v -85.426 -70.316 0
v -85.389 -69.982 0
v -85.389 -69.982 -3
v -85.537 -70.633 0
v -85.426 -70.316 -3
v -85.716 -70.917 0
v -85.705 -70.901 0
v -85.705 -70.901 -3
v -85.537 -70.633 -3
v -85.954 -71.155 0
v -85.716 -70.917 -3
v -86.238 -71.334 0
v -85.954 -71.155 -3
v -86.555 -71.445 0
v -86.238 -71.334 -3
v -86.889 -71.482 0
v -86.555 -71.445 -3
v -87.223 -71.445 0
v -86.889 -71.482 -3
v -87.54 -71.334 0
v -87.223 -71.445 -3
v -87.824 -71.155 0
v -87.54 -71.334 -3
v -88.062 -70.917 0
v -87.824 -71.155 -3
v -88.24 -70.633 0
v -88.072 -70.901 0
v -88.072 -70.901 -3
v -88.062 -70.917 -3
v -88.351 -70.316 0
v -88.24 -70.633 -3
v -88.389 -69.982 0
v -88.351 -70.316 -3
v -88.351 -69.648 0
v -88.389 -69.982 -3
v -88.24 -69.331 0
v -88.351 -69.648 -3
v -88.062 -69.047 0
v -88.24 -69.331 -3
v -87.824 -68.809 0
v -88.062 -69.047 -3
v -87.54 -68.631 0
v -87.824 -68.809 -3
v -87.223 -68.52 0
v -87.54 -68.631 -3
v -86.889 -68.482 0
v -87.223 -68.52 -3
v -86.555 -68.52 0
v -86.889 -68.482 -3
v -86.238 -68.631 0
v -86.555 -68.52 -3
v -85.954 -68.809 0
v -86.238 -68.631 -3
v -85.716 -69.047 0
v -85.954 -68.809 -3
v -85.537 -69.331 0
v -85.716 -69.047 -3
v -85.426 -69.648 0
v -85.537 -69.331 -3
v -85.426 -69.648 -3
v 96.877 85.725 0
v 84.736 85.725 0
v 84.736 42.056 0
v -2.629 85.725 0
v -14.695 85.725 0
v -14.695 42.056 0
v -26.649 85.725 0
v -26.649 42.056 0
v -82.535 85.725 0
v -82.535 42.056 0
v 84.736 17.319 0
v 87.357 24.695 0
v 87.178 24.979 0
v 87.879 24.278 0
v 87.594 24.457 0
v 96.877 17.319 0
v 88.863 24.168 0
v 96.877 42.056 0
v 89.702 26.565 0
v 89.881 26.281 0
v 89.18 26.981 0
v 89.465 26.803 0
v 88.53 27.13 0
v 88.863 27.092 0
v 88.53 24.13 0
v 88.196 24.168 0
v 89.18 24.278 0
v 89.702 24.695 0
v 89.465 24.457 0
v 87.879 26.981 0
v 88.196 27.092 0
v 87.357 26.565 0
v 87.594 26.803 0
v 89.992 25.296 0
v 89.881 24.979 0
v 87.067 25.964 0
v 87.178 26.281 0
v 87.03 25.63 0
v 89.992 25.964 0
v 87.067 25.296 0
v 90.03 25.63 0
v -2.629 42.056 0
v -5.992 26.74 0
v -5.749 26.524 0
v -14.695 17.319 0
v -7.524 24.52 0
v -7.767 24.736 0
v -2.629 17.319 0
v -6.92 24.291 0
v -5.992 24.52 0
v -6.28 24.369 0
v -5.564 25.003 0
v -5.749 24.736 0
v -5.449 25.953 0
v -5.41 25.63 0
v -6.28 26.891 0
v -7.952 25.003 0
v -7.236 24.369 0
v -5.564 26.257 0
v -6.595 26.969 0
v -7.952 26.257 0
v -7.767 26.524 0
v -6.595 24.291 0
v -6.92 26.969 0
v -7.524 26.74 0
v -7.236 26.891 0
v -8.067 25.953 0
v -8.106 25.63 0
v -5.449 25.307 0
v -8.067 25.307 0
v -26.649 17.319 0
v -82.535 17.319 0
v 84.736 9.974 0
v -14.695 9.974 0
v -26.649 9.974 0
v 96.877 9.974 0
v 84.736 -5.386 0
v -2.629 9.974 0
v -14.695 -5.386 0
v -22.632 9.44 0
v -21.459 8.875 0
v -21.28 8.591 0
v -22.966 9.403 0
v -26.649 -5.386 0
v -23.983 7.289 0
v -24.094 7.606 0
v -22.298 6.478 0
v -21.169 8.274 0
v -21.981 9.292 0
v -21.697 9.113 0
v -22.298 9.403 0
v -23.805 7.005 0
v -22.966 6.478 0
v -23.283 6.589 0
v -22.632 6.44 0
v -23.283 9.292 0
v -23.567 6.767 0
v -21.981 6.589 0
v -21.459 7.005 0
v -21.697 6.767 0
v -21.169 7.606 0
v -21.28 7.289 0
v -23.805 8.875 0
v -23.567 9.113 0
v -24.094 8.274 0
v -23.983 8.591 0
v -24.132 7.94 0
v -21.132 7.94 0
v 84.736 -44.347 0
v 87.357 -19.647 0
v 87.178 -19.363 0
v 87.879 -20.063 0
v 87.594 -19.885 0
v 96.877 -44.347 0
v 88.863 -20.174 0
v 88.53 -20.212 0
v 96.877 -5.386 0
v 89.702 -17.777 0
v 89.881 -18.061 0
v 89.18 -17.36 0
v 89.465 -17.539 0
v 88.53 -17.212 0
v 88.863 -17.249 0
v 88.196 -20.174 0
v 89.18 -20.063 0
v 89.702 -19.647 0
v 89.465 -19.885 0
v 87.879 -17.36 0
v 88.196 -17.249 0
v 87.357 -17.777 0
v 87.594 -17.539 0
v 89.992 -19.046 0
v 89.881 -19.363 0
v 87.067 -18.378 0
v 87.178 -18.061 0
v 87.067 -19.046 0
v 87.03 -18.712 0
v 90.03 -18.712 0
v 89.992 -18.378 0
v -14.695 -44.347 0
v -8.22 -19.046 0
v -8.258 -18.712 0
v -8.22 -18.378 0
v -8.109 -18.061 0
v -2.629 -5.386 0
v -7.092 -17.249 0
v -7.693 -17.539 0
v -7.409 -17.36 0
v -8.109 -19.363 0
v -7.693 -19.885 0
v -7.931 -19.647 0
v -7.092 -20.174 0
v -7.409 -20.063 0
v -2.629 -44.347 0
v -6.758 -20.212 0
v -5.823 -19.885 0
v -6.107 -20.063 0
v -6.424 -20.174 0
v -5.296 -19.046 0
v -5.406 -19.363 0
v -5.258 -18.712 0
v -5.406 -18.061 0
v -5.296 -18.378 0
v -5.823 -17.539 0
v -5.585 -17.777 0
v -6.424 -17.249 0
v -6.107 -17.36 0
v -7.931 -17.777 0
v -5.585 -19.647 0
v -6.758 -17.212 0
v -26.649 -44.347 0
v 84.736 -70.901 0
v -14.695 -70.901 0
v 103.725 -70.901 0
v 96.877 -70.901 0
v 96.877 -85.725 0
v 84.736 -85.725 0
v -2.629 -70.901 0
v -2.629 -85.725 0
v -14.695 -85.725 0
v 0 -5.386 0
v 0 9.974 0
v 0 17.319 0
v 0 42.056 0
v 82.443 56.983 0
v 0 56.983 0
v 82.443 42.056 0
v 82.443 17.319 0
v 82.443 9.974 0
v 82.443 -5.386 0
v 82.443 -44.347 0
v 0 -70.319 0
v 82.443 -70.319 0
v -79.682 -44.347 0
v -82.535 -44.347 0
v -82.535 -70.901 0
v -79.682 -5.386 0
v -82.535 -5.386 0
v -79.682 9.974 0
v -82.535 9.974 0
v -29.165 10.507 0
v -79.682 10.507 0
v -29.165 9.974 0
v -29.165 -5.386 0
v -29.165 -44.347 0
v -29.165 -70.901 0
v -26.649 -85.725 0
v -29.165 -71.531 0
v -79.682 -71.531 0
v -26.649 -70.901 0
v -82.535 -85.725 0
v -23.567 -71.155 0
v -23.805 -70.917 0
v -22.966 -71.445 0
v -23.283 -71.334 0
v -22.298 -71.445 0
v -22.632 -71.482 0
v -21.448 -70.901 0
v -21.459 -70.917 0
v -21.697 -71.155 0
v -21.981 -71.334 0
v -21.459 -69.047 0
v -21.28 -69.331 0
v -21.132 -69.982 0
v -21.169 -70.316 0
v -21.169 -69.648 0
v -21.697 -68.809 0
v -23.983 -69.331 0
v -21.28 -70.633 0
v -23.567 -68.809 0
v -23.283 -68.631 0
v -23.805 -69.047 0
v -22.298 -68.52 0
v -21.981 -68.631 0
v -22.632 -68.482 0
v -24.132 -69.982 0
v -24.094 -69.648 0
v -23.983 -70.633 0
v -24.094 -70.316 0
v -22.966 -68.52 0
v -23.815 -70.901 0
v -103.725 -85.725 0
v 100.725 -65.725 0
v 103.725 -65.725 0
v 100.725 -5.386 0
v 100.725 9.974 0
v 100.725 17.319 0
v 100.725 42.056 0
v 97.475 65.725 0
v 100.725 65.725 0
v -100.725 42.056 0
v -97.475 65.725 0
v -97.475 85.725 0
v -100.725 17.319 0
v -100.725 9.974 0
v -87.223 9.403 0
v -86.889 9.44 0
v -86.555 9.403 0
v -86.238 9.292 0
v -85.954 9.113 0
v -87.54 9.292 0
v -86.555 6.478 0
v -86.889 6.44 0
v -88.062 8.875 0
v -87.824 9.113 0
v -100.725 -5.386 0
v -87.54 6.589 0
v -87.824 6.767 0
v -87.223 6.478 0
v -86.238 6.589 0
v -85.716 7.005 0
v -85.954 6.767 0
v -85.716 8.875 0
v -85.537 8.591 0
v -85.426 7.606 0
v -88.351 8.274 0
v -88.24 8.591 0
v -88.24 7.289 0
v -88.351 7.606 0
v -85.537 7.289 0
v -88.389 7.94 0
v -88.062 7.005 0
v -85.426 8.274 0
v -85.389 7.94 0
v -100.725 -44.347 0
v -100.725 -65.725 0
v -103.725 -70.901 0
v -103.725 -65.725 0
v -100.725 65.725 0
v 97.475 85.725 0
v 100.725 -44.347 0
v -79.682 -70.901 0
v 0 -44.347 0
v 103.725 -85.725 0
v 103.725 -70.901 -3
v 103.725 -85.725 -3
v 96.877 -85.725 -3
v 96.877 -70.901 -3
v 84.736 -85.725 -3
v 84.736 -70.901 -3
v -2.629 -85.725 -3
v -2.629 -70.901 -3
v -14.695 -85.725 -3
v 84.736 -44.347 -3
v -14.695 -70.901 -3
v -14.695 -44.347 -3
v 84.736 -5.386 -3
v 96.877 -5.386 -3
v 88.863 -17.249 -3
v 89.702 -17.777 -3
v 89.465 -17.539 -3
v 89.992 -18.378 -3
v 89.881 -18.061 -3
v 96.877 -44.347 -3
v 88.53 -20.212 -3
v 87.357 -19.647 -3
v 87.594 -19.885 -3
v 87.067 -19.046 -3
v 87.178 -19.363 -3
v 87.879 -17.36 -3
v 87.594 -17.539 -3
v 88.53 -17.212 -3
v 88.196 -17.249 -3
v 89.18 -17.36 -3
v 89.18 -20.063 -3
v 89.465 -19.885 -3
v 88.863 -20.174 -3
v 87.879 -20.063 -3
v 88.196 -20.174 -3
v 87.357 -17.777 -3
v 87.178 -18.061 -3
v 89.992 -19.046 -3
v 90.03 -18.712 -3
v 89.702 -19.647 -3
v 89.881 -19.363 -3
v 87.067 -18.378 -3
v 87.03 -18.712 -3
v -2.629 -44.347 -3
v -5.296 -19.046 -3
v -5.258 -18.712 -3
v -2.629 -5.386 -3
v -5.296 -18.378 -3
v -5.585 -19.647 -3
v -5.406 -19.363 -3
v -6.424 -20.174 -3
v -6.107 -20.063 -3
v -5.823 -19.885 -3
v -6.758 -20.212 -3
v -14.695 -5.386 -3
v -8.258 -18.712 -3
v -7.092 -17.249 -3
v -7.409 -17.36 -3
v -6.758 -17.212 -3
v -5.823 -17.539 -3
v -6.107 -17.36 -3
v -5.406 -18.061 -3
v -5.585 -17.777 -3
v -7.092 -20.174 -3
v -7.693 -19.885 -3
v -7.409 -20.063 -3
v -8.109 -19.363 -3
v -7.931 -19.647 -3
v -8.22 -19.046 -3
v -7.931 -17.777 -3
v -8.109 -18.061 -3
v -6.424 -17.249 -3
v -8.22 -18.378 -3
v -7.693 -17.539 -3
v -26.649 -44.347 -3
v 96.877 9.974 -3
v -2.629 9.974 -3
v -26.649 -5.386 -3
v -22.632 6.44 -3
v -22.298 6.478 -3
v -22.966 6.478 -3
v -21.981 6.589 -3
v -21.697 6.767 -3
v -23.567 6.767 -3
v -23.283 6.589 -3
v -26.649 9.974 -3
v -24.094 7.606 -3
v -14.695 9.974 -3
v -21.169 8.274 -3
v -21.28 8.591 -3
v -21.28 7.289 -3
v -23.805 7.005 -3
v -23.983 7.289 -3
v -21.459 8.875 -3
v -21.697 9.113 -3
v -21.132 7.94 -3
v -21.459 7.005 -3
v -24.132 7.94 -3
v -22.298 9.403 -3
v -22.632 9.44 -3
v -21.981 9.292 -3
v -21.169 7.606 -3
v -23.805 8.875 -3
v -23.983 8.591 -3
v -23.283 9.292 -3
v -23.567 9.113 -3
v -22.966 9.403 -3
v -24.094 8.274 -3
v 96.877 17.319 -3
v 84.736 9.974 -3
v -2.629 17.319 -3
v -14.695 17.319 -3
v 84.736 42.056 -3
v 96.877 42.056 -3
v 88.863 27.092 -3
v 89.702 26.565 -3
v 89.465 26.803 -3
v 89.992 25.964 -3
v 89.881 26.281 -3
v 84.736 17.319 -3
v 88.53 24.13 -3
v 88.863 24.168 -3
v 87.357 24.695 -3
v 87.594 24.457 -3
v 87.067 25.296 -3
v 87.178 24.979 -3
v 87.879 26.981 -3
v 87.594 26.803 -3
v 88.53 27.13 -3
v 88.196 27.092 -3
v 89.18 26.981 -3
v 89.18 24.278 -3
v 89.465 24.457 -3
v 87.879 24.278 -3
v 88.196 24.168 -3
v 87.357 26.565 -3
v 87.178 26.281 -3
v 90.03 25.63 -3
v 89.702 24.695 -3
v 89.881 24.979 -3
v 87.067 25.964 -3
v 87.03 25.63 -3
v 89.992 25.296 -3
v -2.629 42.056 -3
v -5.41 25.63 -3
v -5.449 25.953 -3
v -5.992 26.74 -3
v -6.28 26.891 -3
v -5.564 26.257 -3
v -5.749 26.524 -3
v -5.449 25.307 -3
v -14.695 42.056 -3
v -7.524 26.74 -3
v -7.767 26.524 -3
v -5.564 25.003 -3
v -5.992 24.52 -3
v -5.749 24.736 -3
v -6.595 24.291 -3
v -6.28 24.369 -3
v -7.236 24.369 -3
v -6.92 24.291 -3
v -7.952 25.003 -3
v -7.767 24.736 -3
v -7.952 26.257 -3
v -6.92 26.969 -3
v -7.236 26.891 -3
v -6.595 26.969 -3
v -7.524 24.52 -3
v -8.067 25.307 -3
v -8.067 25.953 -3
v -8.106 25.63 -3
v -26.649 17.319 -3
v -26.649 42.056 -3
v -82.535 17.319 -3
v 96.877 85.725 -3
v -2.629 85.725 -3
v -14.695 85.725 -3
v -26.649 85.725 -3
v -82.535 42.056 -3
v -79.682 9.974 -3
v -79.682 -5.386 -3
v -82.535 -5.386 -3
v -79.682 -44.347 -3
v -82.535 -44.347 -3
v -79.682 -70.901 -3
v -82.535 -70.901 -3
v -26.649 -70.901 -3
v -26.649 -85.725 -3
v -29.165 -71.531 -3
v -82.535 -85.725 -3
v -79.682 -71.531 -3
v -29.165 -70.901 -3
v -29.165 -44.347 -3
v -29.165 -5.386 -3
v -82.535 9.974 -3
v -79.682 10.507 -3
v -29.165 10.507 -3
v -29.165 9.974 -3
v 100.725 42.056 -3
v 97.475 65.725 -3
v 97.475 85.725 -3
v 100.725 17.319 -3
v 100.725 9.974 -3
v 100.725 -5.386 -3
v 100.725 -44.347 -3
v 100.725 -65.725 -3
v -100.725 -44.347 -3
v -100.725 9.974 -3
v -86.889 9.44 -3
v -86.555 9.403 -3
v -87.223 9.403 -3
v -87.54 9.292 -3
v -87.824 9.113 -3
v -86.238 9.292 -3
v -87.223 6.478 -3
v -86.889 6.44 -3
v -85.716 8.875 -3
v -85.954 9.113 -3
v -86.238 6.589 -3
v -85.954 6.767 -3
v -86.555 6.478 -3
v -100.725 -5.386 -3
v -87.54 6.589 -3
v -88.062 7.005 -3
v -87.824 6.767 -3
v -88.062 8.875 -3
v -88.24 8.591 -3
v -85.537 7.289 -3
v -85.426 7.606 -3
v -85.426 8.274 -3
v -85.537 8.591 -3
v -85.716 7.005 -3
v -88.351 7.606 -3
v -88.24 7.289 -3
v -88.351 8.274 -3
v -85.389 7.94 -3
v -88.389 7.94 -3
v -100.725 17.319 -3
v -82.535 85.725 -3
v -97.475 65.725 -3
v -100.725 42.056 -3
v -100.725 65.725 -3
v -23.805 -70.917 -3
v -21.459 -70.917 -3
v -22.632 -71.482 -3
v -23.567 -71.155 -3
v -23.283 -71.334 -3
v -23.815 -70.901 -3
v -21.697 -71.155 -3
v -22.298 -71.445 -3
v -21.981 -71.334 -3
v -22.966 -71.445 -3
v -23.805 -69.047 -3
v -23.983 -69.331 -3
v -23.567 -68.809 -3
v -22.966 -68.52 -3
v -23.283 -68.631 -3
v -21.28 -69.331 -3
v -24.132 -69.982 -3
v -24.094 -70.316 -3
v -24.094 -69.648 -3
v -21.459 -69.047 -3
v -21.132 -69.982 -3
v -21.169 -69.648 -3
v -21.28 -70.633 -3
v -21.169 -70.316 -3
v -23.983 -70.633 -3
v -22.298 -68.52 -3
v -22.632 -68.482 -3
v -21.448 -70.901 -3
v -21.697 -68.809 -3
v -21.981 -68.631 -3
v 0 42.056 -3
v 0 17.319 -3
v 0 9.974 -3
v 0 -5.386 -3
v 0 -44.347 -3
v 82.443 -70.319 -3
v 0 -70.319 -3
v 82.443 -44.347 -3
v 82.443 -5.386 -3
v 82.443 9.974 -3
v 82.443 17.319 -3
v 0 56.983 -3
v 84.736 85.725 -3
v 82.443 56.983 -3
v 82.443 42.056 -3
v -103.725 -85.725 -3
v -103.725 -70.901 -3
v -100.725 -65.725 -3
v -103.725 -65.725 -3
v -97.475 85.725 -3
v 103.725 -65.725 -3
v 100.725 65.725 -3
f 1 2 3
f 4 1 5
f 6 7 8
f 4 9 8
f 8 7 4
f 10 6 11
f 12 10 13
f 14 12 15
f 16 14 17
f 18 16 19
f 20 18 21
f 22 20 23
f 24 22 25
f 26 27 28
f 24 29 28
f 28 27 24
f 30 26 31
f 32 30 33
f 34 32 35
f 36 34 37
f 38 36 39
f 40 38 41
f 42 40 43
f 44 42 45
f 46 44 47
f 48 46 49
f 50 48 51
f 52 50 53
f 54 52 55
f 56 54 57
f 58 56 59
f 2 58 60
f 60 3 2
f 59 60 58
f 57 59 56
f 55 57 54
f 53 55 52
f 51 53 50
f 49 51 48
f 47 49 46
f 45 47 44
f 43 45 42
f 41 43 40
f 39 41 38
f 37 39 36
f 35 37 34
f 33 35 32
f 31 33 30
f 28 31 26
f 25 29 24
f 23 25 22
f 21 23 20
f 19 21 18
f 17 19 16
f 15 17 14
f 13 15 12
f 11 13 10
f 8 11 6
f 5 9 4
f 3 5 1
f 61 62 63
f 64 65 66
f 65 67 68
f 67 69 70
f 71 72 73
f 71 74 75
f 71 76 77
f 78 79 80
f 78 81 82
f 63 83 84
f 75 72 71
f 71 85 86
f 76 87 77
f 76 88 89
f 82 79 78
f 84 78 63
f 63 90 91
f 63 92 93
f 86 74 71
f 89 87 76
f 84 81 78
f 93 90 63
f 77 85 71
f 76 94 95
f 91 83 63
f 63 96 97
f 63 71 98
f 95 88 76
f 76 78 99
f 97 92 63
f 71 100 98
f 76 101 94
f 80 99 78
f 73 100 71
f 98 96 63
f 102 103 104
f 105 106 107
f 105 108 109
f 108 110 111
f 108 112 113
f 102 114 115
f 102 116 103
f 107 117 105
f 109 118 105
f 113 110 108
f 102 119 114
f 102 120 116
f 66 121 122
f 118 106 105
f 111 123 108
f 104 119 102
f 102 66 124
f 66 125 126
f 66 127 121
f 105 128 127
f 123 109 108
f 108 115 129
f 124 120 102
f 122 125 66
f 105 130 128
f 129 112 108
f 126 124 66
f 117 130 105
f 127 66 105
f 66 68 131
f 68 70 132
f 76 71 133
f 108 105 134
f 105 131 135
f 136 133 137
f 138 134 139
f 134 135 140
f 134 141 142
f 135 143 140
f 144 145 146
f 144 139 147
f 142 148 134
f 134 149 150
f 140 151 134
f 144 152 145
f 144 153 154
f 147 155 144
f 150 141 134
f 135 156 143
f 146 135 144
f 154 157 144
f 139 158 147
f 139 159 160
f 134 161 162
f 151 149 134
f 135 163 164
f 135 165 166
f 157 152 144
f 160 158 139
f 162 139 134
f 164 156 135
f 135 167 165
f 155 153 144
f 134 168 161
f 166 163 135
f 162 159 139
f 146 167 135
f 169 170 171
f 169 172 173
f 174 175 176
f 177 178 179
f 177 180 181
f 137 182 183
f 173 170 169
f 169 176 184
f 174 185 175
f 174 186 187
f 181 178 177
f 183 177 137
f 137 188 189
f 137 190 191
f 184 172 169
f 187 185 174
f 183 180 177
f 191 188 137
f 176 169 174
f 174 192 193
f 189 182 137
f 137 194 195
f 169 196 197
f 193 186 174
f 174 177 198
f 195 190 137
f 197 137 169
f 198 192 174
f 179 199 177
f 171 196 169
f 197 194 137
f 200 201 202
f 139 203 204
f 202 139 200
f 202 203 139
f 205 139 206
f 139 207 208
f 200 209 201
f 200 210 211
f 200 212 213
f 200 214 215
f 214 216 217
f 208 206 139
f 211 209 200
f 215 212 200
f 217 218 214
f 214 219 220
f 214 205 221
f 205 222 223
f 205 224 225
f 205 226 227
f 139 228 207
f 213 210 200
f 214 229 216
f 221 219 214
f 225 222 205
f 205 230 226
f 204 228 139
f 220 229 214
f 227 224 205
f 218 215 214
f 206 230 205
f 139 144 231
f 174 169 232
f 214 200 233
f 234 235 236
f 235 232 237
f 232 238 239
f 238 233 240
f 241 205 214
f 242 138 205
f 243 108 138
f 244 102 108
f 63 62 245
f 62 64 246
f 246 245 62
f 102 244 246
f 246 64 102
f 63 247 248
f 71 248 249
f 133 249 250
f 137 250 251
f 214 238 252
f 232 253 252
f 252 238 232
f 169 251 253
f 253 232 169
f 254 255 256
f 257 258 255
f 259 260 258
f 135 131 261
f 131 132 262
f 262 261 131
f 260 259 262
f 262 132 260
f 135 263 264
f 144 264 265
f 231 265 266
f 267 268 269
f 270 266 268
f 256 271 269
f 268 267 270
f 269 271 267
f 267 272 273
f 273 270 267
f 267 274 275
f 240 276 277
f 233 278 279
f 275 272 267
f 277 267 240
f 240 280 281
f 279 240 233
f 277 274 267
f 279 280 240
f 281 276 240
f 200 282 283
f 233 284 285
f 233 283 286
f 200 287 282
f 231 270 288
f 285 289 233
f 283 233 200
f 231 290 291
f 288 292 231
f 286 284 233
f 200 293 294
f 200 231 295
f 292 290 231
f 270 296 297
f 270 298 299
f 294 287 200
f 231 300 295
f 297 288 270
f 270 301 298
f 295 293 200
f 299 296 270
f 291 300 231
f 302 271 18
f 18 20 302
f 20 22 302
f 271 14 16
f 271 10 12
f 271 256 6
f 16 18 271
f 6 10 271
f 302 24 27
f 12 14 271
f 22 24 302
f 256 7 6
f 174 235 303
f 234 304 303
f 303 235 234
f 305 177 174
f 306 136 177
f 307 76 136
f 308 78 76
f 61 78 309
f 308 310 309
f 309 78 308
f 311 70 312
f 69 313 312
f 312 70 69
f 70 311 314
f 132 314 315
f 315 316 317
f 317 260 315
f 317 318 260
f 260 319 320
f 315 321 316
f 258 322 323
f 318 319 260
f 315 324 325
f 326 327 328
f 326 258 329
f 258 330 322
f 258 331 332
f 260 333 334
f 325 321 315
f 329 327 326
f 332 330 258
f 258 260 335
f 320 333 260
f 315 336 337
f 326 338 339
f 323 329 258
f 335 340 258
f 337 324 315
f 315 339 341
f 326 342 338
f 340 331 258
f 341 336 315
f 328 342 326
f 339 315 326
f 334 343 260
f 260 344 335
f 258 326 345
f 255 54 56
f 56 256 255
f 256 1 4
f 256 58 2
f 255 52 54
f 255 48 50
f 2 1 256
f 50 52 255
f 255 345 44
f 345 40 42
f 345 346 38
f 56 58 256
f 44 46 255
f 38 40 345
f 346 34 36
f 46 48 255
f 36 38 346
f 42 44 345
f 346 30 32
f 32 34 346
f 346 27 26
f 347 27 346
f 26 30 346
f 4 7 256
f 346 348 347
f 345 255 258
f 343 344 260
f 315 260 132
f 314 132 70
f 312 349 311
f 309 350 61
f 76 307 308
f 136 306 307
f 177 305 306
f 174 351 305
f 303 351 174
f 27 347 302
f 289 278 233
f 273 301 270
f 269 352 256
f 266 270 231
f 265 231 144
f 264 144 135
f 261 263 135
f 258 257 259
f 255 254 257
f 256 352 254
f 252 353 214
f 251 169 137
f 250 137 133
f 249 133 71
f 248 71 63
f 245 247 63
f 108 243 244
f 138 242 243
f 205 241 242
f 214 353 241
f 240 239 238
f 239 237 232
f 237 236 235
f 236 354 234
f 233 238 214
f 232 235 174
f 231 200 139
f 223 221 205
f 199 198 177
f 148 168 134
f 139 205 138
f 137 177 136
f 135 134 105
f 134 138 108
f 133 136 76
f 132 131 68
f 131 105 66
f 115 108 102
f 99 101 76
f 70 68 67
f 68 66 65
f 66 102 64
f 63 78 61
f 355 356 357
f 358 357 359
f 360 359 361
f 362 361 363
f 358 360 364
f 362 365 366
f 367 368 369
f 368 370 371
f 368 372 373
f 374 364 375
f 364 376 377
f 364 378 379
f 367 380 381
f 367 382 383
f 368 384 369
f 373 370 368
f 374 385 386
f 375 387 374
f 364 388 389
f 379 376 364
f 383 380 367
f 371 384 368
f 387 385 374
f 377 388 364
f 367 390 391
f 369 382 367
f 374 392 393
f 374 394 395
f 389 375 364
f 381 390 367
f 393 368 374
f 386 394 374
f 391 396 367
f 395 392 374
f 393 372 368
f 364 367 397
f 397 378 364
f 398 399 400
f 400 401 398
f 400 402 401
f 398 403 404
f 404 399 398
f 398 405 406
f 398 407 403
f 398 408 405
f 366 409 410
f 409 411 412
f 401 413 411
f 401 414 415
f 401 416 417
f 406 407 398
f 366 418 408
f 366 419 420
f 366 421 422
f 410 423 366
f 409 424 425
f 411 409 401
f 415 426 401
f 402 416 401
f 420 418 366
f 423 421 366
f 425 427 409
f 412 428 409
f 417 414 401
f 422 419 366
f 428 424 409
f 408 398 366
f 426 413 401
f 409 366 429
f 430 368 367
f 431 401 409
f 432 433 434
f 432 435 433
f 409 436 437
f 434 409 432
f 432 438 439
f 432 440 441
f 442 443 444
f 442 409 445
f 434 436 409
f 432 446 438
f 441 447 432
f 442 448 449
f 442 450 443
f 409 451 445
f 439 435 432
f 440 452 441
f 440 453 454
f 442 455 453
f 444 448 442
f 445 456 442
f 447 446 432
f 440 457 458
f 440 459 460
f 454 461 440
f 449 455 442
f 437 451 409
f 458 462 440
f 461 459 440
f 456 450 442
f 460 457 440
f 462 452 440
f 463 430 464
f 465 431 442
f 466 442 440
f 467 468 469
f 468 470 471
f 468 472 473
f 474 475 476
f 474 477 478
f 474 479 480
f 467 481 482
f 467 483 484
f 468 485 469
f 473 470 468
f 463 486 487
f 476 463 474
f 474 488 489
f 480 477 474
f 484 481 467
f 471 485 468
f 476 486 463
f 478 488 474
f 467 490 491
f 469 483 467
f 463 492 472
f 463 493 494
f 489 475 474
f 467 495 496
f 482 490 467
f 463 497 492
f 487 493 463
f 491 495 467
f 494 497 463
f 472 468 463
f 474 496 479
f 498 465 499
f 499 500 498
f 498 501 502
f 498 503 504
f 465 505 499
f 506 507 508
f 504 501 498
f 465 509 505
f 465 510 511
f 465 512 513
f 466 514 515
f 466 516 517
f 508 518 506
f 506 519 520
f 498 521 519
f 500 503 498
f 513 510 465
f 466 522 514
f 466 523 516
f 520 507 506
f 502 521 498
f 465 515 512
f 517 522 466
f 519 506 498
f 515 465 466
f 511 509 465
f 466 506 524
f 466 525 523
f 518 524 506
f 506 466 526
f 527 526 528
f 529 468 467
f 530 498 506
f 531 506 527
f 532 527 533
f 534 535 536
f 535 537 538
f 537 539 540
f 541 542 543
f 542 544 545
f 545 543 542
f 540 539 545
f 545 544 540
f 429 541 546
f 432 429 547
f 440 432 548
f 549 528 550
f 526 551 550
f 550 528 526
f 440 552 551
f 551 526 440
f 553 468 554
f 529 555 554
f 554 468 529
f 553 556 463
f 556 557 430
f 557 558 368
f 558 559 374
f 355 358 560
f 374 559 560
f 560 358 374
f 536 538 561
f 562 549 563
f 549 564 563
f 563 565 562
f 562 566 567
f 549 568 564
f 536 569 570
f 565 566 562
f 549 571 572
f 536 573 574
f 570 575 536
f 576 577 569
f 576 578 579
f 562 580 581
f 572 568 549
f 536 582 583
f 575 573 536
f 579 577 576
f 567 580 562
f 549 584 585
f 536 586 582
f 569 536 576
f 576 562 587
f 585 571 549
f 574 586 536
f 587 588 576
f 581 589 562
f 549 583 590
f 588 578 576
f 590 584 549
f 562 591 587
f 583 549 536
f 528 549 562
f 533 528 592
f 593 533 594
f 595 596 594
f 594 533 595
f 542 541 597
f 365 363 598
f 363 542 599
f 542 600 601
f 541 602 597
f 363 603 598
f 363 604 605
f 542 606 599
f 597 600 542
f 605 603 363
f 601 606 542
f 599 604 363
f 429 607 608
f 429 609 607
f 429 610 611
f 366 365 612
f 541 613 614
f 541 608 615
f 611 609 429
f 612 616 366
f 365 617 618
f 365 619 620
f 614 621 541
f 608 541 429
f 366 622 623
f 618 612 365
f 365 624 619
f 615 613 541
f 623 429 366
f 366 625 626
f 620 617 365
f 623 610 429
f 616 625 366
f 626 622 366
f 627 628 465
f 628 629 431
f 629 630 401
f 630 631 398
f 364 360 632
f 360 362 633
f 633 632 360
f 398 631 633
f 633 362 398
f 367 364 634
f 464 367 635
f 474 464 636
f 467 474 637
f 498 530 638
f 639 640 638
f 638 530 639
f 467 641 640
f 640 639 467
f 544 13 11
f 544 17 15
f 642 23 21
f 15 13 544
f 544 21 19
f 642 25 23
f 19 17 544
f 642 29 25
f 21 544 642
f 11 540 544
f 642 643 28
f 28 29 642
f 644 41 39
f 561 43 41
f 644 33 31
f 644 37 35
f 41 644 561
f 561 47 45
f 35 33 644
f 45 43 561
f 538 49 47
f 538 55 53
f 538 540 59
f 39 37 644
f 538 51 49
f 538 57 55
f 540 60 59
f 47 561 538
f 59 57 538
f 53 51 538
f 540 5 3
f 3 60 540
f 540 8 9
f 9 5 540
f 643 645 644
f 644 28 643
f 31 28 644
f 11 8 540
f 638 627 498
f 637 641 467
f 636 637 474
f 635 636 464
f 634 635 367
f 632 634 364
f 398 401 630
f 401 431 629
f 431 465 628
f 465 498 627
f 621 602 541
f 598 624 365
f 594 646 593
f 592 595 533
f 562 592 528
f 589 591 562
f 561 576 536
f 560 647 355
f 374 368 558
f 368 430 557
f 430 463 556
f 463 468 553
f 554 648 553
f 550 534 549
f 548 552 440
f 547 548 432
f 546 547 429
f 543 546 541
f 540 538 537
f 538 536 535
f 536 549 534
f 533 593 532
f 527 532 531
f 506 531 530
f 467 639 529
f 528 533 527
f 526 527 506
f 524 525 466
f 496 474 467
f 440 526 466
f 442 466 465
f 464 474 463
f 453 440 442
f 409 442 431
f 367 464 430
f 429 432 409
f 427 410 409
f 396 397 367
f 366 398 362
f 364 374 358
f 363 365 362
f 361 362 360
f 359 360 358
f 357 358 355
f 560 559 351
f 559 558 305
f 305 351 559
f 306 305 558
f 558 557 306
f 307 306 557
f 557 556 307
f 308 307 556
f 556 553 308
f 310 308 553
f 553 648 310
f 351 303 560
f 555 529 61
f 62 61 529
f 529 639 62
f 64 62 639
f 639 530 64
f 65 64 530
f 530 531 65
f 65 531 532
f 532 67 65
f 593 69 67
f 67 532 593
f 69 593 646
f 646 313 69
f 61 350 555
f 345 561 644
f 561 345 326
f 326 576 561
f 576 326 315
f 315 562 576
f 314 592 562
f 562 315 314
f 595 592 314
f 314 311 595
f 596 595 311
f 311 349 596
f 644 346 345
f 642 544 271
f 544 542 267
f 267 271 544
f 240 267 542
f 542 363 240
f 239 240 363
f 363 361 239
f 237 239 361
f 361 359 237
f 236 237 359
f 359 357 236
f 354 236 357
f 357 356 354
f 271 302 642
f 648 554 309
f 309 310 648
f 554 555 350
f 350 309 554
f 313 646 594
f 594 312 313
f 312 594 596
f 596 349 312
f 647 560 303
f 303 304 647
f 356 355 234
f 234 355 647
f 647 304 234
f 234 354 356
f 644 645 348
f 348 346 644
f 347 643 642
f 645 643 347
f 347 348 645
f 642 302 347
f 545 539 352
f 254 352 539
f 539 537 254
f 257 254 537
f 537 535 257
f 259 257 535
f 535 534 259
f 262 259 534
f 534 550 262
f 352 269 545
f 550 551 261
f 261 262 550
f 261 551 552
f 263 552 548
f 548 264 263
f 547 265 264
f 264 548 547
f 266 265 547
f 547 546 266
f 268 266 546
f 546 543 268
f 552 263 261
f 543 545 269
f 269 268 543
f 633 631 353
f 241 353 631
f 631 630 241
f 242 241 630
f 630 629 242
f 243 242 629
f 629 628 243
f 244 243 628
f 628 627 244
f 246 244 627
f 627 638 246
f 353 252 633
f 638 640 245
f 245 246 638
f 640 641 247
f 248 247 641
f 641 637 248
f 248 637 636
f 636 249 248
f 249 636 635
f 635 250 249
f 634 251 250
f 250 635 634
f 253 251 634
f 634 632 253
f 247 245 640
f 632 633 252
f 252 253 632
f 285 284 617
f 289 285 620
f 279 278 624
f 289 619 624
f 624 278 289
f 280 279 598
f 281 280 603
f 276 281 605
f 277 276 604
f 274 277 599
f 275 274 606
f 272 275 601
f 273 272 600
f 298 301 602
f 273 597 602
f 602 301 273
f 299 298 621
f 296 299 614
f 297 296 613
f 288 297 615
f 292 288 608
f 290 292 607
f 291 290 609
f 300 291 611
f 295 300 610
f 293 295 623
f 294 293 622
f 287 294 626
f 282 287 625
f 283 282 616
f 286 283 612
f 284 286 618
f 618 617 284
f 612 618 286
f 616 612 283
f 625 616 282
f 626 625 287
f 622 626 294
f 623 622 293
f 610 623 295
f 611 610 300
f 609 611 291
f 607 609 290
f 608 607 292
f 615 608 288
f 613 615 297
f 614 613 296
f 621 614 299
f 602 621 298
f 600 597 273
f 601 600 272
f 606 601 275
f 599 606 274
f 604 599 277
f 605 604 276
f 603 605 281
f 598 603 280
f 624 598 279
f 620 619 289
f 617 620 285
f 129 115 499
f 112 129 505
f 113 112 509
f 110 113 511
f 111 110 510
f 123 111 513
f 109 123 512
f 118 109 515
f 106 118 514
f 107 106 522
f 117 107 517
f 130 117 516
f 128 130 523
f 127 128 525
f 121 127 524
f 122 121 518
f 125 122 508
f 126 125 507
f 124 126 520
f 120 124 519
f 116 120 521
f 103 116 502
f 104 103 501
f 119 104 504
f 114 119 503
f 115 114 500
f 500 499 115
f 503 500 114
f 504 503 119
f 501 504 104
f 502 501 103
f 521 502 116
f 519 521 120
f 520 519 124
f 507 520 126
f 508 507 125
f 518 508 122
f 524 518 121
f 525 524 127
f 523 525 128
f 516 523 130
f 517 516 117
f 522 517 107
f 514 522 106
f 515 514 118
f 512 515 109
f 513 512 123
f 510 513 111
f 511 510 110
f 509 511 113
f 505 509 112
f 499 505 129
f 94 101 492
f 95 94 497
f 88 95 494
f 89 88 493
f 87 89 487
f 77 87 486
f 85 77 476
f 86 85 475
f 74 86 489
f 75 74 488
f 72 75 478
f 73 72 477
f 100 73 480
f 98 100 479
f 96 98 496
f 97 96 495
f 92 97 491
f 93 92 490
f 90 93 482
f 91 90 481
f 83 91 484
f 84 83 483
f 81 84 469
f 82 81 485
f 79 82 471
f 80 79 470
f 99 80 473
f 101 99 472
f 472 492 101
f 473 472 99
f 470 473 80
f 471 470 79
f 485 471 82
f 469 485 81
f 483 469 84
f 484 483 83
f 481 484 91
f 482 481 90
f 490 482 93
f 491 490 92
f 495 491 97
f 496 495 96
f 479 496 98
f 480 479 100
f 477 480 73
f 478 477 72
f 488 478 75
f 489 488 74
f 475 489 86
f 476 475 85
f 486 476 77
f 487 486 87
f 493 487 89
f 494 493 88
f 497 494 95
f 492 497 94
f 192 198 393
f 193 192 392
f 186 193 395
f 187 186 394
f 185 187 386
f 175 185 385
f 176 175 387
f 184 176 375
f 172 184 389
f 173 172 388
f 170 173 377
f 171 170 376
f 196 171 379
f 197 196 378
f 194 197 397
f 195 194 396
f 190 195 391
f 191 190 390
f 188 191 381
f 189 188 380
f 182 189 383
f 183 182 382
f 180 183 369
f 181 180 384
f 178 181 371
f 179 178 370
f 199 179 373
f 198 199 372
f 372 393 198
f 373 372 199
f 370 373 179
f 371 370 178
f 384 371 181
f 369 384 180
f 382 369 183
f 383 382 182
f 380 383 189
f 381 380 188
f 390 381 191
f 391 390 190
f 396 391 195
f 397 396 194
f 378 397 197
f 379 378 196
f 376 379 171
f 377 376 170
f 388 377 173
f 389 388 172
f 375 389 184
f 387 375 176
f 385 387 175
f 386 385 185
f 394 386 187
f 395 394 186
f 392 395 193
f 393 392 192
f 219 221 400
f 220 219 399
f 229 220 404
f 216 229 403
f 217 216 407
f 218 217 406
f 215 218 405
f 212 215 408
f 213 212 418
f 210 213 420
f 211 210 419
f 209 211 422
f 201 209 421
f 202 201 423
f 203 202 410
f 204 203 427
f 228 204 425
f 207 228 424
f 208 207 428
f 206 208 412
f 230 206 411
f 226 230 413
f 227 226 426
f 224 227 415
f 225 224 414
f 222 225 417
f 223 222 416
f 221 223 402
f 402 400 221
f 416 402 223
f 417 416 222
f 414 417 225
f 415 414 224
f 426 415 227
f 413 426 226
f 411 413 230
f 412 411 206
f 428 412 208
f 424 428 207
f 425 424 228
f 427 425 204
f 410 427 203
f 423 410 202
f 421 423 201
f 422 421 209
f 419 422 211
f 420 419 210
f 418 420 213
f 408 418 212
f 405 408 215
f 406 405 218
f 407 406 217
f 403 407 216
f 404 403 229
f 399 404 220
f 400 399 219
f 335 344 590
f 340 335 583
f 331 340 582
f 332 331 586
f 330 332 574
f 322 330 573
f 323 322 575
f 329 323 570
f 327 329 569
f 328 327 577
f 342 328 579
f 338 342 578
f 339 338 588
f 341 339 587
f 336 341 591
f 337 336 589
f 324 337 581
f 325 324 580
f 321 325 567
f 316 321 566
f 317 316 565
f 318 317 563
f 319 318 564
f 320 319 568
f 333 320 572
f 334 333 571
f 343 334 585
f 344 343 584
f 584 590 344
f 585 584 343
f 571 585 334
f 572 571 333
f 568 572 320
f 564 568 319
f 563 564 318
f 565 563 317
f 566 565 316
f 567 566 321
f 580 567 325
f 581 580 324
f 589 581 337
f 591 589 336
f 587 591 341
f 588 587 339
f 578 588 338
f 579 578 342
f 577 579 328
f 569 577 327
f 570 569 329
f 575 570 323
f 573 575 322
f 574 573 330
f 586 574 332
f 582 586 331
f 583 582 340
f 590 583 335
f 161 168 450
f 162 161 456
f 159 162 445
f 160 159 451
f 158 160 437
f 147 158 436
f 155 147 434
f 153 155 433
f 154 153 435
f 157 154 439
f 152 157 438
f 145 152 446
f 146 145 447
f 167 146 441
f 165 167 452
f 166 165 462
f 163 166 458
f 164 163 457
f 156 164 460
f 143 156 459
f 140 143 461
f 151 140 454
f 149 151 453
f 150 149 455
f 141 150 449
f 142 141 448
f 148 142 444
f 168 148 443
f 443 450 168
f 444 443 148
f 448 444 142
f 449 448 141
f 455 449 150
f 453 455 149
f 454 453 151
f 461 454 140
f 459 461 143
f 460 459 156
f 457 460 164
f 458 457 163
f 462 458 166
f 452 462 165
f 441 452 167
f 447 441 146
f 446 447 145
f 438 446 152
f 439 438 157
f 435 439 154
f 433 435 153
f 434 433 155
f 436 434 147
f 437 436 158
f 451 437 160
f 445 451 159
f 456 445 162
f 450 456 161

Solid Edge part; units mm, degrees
sketch "Sketch1" plane through (0, 0, 0) normal (0, 0, -1) x (-1, 0, 0)
  line L0 (-85.725, -85.725) -> (85.725, -85.725)
  line L1 (85.725, -85.725) -> (85.725, 85.725)
  line L2 (85.725, 85.725) -> (-85.725, 85.725)
  line L3 (-85.725, 85.725) -> (-85.725, -85.725)
  dimension "D1" = 171.45
  dimension "D2" = 171.45
extrude "ExtrudedProtrusion_18" add sketch "Sketch1" along normal blind 3
sketch "Sketch2" plane through (-85.725, 77.9118, -2) normal (-1, 0, 0) x (0, -1, 0)
  line L0 (-7.8132, 2) -> (163.6368, 2)
  line L1 (163.6368, 2) -> (163.6368, -2)
  line L2 (163.6368, -2) -> (-7.8132, -2)
  line L3 (-7.8132, -2) -> (-7.8132, 2)
  dimension "D1" = 171.45
  dimension "D2" = 4
extrude "Protrusion1" add sketch "Sketch2" along normal blind 15
sketch "Sketch3" plane through (85.725, -66.89, -2) normal (1, 0, 0) x (0, -1, 0)
  line L0 (-152.615, 1) -> (18.835, 1)
  line L1 (18.835, 1) -> (18.835, -3)
  line L2 (18.835, -3) -> (-152.615, -3)
  line L3 (-152.615, -3) -> (-152.615, 1)
  dimension "D1" = 171.45
  dimension "D2" = 4
extrude "Protrusion2" add sketch "Sketch3" along normal blind 15
sketch "Sketch4" plane through (0, 0, -3) normal (0, 0, -1) x (0, 1, 0)
  line L0 (85.725, 100.725) -> (65.725, 100.725)
  line L1 (65.725, 100.725) -> (65.725, 97.475)
  line L2 (65.725, 97.475) -> (85.725, 97.475)
  line L3 (85.725, 97.475) -> (85.725, 100.725)
  line L4 (85.725, -100.725) -> (65.725, -100.725)
  line L5 (65.725, -100.725) -> (65.725, -97.475)
  line L6 (65.725, -97.475) -> (85.725, -97.475)
  line L7 (85.725, -97.475) -> (85.725, -100.725)
  dimension "D1" = 20
  dimension "D2" = 3.25
extrude "Cutout1" cut sketch "Sketch4" against normal blind 20
sketch "Sketch5" plane through (100.725, -10, 6) normal (1, 0, 0) x (0, -1, 0)
  line L0 (75.725, 9) -> (55.725, 9)
  line L1 (55.725, 9) -> (55.725, 5)
  line L2 (55.725, 5) -> (75.725, 5)
  line L3 (75.725, 5) -> (75.725, 9)
  dimension "D1" = 20
  dimension "D2" = 4
extrude "ExtrudedProtrusion_23" add sketch "Sketch5" along normal mid plane 6
sketch "Sketch6" plane through (-100.725, -10, 6) normal (-1, 0, 0) x (0, 1, 0)
  line L0 (-75.725, 10) -> (-55.725, 10)
  line L1 (-55.725, 10) -> (-55.725, 6)
  line L2 (-55.725, 6) -> (-75.725, 6)
  line L3 (-75.725, 6) -> (-75.725, 10)
  dimension "D1" = 20
  dimension "D2" = 4
extrude "ExtrudedProtrusion_24" add sketch "Sketch6" along normal mid plane 6
sketch "Sketch7" plane through (0, 0, 0) normal (0, 0, 1) x (1, 0, 0)
  circle A0 centre (-86.8888, -69.9822) radius 1.5
  circle A1 centre (-22.6318, -69.9822) radius 1.5
  line L0 (-79.6818, 10.5074) -> (-29.1653, 10.5074)
  line L1 (-29.1653, 10.5074) -> (-29.1653, -71.5314)
  line L2 (-29.1653, -71.5314) -> (-79.6818, -71.5314)
  line L3 (-79.6818, -71.5314) -> (-79.6818, 10.5074)
  circle A2 centre (-6.7579, 25.6299) radius 1.3484
  circle A3 centre (88.5296, 25.6299) radius 1.5
  circle A4 centre (88.5296, -18.7118) radius 1.5
  circle A5 centre (-6.7579, -18.7118) radius 1.5
  circle A6 centre (-86.8888, 7.9402) radius 1.5
  circle A7 centre (-22.6318, 7.9402) radius 1.5
  line L4 (0, 56.9826) -> (82.443, 56.9826)
  line L5 (82.443, 56.9826) -> (82.443, -70.319)
  line L6 (82.443, -70.319) -> (0, -70.319)
  line L7 (0, -70.319) -> (0, 56.9826)
  dimension "D1" = 3
  dimension "D2" = 3
  dimension "D3" = 50.5165
  dimension "D4" = 82.0388
  dimension "D5" = 2.6968
  dimension "D6" = 3
  dimension "D7" = 3
  dimension "D8" = 3
  dimension "D9" = 3
  dimension "D10" = 3
  dimension "D11" = 82.443
  dimension "D12" = 127.3016
extrude "Cutout2" cut sketch "Sketch7" against normal blind 45
sketch "Sketch8" plane through (0, -85.725, -1.5) normal (0, -1, 0) x (1, 0, 0)
  line L0 (-74.682, -1.5) -> (-132.0067, -1.5)
  line L1 (-132.0067, -1.5) -> (-132.0067, -6.1664)
  line L2 (-132.0067, -6.1664) -> (-74.682, -6.1664)
  line L3 (-74.682, -6.1664) -> (-74.682, -1.5)
  line L4 (80.62, 1.5) -> (132.4635, 1.5)
  line L5 (132.4635, 1.5) -> (132.4635, 12.3328)
  line L6 (132.4635, 12.3328) -> (80.62, 12.3328)
  line L7 (80.62, 12.3328) -> (80.62, 1.5)
  dimension "D1" = 57.3247
  dimension "D2" = 4.6664
  dimension "D3" = 51.8435
  dimension "D4" = 10.8328
extrude "Cutout3" cut sketch "Sketch8" against normal blind 250
